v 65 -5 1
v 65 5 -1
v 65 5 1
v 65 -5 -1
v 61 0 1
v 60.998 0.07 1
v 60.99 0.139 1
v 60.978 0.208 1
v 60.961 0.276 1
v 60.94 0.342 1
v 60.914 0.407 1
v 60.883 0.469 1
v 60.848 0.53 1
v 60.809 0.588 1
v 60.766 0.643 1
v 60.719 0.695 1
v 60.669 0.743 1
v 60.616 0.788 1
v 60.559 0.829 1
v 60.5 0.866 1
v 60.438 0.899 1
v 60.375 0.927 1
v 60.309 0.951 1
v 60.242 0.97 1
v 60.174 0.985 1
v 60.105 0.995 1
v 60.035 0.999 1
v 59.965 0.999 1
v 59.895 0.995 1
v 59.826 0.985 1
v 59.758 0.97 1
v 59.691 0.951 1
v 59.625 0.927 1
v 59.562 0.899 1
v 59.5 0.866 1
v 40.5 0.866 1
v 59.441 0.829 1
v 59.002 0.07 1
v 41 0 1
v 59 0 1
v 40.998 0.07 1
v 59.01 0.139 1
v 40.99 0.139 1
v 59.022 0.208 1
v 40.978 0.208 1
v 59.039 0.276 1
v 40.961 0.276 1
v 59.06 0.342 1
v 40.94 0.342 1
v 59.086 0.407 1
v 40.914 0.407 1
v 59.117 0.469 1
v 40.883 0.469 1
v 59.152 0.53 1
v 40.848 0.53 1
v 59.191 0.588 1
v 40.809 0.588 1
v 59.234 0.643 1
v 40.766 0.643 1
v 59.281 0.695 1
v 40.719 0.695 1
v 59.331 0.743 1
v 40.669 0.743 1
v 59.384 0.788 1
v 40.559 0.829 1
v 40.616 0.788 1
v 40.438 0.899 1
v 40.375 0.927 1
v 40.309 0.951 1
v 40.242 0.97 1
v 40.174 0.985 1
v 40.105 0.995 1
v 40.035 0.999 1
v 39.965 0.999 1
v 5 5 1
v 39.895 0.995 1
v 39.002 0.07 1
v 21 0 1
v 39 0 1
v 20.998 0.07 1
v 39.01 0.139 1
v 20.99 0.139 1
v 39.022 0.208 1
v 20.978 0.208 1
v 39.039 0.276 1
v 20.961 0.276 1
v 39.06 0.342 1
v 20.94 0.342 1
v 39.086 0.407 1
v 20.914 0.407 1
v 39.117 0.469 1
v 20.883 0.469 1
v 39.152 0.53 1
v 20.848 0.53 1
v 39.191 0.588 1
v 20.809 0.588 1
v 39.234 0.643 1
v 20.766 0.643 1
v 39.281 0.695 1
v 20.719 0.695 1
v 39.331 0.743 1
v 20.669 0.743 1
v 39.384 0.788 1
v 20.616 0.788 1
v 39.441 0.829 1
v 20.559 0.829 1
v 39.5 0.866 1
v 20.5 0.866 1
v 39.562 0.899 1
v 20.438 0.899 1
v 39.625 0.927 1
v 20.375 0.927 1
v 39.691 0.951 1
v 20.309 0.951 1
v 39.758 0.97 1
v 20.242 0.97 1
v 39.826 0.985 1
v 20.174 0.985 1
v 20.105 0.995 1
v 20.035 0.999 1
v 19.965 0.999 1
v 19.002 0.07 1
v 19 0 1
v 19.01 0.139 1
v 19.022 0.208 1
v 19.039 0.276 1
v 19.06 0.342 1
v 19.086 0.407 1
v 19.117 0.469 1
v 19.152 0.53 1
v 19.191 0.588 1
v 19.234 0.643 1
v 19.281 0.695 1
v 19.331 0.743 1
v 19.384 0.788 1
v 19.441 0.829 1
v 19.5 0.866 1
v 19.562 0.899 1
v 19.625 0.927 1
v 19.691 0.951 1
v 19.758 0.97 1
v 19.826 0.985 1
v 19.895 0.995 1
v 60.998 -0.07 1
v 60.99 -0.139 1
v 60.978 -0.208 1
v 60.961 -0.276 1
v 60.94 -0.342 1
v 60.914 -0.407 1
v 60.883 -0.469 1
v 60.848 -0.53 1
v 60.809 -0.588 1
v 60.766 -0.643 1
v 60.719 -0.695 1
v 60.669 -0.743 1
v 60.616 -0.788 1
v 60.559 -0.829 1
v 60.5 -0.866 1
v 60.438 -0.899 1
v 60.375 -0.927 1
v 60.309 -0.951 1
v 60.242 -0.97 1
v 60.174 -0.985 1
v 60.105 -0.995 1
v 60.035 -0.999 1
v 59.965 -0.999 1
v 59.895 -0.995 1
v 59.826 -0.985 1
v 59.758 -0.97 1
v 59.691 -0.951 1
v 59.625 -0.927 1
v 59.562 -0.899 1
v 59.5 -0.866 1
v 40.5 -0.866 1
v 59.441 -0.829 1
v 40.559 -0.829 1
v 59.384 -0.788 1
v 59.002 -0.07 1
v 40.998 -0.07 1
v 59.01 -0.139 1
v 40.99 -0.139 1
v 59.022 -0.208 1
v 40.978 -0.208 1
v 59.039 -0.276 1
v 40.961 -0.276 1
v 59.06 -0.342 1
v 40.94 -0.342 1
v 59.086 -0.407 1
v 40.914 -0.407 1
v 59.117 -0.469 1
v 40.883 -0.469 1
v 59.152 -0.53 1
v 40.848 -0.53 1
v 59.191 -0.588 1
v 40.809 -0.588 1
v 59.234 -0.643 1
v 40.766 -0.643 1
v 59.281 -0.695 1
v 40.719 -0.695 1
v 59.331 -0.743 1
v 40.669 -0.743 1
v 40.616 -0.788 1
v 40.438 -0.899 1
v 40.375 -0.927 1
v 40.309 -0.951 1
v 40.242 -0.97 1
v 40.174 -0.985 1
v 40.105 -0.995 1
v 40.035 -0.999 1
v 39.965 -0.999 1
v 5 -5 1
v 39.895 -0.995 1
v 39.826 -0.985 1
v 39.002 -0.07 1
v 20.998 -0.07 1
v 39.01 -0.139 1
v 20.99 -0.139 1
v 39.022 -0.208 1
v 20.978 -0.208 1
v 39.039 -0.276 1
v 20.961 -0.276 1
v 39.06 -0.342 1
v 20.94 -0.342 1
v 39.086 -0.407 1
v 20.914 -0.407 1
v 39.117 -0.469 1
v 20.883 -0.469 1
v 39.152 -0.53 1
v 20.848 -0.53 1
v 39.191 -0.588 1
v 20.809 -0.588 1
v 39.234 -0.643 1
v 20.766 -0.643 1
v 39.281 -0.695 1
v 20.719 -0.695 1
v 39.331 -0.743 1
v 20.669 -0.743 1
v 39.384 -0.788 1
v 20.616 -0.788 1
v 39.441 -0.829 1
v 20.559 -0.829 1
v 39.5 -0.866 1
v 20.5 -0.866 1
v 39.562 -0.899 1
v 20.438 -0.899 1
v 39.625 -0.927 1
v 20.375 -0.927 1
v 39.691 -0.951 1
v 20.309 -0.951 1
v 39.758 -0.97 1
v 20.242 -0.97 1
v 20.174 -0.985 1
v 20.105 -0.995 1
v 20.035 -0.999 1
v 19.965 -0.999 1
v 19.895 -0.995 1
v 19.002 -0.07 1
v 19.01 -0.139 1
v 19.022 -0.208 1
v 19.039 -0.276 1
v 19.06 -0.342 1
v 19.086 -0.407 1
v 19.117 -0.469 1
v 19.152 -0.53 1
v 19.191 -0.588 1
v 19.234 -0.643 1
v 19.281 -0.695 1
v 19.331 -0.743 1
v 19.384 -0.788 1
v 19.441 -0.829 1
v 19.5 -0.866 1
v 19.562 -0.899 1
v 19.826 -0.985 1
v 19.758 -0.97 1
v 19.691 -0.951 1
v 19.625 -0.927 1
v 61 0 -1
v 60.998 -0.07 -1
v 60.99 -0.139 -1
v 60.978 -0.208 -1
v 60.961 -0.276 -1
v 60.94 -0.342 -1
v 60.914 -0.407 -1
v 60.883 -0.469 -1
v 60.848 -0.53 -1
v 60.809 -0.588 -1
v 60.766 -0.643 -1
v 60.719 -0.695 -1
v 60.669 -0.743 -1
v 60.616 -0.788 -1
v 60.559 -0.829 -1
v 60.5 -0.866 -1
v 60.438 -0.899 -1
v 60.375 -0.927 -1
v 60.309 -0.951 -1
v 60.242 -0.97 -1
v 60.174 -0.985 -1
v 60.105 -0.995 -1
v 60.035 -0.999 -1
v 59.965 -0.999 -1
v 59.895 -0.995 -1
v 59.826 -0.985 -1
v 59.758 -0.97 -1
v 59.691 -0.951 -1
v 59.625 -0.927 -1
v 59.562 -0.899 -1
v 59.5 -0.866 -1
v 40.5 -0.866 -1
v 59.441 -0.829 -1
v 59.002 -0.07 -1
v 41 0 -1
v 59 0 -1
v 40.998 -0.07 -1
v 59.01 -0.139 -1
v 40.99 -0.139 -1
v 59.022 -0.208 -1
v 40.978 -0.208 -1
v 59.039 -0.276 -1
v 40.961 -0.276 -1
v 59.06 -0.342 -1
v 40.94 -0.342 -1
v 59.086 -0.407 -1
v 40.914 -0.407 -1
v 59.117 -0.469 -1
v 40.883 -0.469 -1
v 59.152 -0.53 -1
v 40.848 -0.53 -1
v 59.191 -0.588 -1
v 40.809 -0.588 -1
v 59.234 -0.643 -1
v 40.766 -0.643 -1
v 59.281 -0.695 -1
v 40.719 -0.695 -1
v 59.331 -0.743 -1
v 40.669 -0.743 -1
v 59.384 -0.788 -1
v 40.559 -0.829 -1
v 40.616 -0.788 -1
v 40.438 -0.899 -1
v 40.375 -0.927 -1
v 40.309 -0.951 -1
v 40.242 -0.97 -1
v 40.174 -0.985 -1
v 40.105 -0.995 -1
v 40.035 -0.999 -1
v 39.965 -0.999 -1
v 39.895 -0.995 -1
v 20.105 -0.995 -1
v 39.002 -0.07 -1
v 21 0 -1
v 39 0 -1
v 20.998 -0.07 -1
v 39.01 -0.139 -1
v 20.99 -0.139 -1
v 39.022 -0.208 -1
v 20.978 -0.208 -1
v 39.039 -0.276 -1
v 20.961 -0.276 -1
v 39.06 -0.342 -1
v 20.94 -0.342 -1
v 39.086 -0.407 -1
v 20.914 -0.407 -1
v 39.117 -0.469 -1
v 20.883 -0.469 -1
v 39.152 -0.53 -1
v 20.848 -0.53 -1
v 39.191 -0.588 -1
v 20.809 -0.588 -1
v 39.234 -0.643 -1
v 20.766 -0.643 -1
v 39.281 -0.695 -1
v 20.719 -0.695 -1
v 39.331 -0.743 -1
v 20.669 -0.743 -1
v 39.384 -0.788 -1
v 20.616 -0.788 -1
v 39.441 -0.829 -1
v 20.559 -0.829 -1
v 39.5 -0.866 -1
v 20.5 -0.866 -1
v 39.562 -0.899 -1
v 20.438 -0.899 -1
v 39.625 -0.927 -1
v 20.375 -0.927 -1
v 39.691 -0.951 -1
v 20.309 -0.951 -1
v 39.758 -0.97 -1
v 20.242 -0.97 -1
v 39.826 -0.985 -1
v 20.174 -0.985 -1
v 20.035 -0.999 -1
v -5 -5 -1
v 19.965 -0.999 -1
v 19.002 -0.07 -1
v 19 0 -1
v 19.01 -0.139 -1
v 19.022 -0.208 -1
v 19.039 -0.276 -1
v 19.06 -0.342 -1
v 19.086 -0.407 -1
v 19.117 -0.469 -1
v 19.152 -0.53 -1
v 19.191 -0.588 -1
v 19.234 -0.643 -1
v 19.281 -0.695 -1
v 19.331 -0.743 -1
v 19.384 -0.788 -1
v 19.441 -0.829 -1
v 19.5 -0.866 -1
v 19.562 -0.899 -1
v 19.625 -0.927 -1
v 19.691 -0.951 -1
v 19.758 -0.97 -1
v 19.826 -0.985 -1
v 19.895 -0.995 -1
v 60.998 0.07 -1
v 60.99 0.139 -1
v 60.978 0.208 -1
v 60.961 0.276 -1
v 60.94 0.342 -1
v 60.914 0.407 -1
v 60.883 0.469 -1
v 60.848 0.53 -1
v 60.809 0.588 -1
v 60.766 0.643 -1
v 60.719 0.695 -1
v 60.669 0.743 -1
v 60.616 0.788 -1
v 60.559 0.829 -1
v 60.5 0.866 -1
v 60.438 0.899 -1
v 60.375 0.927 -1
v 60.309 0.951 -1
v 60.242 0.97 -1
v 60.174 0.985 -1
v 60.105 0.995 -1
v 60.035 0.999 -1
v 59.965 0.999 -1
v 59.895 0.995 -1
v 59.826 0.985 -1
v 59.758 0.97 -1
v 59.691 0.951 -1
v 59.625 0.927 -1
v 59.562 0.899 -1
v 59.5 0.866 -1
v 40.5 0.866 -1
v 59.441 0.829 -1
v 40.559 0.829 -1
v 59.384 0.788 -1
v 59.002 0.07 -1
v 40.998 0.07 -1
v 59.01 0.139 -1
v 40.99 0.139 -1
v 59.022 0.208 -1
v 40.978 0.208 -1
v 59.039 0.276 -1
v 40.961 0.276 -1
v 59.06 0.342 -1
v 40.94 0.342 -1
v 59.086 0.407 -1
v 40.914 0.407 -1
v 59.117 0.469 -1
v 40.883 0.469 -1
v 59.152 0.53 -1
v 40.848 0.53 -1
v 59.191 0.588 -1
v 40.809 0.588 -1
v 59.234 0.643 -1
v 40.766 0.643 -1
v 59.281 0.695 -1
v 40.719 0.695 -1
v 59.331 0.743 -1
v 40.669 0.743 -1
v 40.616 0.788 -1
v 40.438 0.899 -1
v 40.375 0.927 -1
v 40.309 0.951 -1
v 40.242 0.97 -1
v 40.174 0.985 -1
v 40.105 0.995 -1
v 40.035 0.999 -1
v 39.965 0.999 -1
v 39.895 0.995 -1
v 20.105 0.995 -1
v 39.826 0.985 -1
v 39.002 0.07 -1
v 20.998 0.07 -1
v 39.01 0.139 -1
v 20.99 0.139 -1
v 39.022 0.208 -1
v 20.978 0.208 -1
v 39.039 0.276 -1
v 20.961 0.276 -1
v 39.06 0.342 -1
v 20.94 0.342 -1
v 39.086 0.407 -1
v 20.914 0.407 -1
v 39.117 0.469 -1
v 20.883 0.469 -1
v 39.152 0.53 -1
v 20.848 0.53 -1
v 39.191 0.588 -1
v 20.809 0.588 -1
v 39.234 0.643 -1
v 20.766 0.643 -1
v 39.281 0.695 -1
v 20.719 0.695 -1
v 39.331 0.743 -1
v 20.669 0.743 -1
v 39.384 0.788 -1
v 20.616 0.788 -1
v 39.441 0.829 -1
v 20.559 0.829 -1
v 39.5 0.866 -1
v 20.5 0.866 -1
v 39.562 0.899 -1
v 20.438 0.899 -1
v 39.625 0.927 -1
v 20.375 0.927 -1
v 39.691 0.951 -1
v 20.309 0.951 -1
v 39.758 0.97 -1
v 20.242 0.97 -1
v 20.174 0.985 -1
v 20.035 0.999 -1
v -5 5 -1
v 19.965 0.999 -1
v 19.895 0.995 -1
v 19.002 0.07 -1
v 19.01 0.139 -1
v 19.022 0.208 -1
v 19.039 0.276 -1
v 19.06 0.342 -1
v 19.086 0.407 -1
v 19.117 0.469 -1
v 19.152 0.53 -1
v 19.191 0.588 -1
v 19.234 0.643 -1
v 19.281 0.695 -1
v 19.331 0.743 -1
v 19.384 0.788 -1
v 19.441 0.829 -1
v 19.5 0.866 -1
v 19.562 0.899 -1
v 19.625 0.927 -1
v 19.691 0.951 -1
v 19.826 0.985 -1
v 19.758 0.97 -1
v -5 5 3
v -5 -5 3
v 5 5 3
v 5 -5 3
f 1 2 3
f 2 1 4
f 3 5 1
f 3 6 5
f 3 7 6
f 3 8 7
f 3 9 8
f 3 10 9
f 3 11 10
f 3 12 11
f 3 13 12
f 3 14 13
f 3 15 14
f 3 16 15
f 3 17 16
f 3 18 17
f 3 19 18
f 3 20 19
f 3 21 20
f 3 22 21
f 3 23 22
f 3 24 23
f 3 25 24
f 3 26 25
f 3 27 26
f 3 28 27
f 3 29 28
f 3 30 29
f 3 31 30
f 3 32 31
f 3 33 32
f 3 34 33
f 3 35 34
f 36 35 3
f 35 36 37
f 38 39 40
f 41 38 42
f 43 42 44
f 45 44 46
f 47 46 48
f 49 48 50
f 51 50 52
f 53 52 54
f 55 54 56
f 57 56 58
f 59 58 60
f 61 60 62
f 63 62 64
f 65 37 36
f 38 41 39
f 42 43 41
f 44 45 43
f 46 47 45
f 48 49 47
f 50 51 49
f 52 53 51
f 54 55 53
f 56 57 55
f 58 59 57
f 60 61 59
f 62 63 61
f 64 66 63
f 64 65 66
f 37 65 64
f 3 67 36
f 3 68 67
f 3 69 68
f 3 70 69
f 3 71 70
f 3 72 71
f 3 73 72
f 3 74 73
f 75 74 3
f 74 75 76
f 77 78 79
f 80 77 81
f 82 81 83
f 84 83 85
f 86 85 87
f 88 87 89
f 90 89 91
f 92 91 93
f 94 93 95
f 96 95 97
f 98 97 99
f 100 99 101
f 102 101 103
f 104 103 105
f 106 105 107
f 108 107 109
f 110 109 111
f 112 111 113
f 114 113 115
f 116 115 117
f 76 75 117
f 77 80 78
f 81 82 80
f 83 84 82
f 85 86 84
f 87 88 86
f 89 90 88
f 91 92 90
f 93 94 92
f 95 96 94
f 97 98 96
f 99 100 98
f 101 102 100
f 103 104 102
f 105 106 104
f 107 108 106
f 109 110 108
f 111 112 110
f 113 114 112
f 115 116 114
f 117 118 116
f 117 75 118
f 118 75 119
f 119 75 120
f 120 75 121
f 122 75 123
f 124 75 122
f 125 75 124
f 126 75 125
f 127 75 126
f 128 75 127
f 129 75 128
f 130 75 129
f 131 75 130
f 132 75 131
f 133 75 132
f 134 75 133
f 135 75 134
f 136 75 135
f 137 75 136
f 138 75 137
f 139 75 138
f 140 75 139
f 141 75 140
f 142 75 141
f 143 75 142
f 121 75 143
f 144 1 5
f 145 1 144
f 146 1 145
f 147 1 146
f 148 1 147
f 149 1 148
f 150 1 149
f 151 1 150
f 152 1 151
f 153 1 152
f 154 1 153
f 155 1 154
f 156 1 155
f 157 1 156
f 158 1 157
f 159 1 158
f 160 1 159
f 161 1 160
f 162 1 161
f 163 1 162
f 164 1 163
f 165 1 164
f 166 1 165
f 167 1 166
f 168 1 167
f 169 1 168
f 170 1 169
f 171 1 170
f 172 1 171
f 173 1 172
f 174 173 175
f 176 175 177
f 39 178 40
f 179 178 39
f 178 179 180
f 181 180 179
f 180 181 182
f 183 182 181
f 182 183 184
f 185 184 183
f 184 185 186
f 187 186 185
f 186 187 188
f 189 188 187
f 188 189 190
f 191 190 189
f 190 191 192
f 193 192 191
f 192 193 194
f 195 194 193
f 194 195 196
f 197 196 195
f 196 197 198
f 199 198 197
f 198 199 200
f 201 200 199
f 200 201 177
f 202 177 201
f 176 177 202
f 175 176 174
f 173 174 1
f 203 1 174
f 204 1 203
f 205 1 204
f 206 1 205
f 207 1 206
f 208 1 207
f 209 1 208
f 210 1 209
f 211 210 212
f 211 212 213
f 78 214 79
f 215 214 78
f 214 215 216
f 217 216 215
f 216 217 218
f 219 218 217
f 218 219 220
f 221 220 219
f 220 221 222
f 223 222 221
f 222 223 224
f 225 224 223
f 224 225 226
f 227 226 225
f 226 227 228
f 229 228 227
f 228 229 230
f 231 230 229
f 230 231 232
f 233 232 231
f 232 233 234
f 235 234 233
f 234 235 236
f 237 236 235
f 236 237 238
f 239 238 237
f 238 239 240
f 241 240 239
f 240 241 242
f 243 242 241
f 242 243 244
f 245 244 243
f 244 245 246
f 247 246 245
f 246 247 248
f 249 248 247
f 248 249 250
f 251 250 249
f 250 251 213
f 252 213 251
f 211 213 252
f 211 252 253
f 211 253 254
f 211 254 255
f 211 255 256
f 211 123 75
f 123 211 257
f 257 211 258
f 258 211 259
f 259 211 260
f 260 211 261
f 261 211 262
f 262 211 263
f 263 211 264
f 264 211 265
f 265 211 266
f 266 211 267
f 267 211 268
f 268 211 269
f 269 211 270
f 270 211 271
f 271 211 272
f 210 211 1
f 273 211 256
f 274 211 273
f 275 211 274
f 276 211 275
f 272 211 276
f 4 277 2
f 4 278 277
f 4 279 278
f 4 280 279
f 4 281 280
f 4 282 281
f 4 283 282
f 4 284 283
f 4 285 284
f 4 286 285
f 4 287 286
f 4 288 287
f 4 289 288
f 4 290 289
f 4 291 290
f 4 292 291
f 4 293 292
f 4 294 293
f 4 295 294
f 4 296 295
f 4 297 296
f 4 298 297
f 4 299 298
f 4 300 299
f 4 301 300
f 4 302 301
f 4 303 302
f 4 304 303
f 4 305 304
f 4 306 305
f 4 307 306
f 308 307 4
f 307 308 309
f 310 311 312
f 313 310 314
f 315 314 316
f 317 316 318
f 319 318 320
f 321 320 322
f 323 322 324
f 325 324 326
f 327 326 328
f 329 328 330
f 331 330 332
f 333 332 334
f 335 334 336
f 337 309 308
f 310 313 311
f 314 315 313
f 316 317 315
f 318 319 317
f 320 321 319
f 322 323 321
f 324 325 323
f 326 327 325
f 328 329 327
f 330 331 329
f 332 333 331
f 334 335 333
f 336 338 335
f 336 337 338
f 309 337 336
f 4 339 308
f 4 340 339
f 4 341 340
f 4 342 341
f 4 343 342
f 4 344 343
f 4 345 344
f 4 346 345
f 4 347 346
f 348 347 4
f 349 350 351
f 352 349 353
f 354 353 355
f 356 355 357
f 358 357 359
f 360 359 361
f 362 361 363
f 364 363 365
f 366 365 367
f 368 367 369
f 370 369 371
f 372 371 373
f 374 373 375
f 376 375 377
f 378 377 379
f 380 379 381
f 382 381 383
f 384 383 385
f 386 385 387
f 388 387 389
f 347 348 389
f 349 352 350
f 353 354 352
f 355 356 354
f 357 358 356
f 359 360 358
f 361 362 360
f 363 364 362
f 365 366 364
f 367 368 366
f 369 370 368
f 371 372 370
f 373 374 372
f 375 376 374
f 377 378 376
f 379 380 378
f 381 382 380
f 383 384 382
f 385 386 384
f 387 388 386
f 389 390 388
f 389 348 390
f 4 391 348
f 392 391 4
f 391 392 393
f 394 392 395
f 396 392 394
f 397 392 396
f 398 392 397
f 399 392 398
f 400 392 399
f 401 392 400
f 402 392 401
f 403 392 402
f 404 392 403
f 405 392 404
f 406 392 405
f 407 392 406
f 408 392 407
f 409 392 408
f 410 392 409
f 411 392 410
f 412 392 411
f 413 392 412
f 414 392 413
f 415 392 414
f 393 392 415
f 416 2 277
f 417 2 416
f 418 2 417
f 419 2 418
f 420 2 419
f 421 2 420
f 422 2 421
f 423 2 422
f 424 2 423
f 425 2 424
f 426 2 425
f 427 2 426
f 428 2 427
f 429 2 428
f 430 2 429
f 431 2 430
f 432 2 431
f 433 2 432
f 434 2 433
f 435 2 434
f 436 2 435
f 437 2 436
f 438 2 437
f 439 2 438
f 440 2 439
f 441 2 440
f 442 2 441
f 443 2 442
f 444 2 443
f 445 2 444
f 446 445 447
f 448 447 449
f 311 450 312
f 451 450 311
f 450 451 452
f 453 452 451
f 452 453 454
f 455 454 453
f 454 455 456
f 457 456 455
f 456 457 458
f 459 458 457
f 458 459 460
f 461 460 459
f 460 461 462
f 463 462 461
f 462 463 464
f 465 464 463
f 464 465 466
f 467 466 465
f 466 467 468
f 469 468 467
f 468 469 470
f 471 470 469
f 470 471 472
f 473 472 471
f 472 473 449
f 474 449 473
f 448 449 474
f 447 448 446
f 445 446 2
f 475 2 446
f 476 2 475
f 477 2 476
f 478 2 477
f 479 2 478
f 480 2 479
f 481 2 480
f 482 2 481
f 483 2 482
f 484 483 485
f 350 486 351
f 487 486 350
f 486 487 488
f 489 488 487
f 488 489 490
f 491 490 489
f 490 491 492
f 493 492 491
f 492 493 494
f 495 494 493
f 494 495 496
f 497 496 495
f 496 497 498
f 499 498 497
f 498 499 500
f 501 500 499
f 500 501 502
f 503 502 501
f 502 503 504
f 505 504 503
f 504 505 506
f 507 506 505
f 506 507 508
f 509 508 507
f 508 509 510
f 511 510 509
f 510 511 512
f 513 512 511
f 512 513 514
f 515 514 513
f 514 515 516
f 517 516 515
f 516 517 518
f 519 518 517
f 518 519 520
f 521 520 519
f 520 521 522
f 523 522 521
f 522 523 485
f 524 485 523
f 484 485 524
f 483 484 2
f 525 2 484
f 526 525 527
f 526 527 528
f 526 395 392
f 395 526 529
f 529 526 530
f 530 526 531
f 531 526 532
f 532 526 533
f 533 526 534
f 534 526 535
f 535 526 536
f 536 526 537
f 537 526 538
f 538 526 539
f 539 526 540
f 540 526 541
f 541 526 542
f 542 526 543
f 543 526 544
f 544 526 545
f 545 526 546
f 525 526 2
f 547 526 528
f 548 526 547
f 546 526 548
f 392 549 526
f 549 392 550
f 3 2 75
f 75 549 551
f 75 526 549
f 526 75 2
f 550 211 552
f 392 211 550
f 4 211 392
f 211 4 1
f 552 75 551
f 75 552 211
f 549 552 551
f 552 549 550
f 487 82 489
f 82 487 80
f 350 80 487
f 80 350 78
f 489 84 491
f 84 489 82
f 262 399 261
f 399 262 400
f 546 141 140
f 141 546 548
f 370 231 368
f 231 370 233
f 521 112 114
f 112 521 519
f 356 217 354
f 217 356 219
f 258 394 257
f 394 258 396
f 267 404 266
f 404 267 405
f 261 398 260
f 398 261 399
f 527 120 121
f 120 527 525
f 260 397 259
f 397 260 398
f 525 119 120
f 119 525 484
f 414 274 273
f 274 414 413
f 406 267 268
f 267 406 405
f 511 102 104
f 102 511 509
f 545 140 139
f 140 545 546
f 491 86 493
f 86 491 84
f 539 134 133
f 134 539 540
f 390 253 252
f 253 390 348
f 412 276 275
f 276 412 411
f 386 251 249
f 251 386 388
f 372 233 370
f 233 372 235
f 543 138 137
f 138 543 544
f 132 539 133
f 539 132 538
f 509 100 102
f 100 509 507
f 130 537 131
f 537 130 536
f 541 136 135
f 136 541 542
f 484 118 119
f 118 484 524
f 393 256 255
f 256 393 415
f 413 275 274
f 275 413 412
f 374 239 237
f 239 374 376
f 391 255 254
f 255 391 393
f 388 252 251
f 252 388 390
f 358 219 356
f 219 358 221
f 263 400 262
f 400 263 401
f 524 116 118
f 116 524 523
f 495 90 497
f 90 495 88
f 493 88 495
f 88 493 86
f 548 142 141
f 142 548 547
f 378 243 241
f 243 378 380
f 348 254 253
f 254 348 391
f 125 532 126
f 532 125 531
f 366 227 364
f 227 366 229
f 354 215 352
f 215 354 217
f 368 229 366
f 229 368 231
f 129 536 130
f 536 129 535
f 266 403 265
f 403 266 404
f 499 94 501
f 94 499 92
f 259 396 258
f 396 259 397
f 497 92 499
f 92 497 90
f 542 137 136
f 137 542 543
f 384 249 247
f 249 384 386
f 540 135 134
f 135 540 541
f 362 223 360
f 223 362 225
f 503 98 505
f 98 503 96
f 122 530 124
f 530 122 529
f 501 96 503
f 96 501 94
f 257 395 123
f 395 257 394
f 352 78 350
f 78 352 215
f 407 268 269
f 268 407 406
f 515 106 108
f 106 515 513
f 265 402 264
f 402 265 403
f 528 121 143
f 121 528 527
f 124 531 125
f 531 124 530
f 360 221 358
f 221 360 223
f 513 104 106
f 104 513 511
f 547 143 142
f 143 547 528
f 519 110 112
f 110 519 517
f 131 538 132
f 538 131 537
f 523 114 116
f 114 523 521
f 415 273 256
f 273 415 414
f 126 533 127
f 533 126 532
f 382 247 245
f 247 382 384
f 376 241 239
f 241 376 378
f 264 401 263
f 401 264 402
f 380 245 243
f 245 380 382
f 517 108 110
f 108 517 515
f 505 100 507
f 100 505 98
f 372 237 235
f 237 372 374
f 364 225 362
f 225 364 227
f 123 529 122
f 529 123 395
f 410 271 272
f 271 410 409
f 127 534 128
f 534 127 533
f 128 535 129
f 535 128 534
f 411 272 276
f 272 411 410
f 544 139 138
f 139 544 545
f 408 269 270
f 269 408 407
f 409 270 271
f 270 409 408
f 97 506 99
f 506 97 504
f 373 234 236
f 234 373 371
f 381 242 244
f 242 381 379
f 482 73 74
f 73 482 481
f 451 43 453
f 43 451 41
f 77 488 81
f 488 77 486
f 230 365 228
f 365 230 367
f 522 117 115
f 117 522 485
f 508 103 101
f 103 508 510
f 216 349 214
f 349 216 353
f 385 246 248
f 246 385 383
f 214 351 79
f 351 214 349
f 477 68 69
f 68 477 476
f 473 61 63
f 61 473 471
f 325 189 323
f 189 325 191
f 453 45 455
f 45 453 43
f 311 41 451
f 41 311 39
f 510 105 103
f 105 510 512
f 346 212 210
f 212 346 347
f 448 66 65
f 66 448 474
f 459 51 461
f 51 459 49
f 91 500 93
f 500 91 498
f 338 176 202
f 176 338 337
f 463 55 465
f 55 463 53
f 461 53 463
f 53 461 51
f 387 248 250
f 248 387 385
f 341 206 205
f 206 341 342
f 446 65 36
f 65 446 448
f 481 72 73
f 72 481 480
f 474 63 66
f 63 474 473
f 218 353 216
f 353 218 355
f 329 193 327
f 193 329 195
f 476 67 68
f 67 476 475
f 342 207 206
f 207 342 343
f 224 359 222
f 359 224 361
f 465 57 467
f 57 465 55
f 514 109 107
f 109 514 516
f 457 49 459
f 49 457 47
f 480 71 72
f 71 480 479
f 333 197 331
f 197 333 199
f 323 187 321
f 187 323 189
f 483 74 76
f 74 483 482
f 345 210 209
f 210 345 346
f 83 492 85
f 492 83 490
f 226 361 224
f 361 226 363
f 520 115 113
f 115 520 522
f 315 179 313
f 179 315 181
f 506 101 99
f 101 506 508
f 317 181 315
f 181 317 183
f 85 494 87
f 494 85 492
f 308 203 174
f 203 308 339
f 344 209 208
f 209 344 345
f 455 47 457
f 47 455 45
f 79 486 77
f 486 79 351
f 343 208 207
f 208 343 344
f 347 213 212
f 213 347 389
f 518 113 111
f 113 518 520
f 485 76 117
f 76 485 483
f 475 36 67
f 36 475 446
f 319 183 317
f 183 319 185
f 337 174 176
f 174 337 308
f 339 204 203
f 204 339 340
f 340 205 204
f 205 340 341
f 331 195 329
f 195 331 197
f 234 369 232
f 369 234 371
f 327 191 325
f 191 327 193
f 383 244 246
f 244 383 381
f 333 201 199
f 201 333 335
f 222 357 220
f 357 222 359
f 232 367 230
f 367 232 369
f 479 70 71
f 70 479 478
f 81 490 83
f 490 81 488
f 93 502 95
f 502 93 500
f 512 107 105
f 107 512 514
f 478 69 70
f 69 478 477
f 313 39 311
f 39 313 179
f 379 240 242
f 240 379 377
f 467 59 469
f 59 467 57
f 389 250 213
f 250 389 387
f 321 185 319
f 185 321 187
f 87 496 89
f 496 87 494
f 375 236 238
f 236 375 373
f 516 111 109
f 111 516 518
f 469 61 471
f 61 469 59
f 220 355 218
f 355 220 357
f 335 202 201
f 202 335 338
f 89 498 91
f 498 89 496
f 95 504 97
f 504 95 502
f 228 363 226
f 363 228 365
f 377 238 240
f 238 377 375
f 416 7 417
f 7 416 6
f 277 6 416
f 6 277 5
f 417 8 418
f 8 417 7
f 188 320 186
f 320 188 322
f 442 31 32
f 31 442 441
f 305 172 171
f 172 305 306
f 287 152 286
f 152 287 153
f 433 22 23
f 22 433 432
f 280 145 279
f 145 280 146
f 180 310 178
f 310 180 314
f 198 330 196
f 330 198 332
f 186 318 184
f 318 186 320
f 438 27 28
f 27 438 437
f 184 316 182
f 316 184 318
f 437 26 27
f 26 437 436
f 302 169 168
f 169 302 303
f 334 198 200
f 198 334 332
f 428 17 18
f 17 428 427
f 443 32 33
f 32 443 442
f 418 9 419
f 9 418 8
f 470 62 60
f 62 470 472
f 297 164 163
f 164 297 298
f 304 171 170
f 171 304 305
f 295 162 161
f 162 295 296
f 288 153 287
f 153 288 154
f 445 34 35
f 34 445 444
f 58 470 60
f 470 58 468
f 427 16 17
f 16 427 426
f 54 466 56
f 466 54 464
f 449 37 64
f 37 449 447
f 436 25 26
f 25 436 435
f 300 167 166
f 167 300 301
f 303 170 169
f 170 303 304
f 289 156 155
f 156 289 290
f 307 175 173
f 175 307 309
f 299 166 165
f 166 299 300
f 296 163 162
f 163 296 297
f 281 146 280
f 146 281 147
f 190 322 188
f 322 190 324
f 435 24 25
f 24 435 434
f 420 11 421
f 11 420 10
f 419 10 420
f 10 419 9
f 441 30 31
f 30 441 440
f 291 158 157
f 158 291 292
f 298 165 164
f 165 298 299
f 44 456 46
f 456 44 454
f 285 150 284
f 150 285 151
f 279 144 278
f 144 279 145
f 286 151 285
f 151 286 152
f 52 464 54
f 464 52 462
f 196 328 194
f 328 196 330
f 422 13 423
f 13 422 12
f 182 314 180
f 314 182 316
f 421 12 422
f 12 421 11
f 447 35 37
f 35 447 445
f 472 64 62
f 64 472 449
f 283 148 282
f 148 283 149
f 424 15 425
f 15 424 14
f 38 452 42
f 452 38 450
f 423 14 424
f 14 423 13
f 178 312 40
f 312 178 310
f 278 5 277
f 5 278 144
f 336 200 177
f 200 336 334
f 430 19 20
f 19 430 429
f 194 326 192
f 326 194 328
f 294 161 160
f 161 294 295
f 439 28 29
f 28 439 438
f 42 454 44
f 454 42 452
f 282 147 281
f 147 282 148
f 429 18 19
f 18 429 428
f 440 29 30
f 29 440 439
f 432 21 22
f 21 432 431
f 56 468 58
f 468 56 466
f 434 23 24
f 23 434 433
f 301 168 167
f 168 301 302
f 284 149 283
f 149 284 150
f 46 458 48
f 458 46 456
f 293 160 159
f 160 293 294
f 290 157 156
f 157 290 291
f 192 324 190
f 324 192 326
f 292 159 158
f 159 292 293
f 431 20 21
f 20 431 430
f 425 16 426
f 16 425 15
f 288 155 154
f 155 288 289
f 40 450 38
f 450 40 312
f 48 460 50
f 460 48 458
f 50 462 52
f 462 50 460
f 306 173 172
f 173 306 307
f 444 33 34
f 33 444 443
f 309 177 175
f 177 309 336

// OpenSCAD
$fn = 90;

difference() {
  union() {
    translate([30, 0, 0]) cube([70, 10, 2], center = true);
    translate([0, 0, 2]) cube([10, 10, 2], center = true);
  }
  translate([20, 0, 0]) cylinder(2, d=2, center = true);  
  translate([40, 0, 0]) cylinder(2, d=2, center = true);  
  translate([60, 0, 0]) cylinder(2, d=2, center = true);  
}
